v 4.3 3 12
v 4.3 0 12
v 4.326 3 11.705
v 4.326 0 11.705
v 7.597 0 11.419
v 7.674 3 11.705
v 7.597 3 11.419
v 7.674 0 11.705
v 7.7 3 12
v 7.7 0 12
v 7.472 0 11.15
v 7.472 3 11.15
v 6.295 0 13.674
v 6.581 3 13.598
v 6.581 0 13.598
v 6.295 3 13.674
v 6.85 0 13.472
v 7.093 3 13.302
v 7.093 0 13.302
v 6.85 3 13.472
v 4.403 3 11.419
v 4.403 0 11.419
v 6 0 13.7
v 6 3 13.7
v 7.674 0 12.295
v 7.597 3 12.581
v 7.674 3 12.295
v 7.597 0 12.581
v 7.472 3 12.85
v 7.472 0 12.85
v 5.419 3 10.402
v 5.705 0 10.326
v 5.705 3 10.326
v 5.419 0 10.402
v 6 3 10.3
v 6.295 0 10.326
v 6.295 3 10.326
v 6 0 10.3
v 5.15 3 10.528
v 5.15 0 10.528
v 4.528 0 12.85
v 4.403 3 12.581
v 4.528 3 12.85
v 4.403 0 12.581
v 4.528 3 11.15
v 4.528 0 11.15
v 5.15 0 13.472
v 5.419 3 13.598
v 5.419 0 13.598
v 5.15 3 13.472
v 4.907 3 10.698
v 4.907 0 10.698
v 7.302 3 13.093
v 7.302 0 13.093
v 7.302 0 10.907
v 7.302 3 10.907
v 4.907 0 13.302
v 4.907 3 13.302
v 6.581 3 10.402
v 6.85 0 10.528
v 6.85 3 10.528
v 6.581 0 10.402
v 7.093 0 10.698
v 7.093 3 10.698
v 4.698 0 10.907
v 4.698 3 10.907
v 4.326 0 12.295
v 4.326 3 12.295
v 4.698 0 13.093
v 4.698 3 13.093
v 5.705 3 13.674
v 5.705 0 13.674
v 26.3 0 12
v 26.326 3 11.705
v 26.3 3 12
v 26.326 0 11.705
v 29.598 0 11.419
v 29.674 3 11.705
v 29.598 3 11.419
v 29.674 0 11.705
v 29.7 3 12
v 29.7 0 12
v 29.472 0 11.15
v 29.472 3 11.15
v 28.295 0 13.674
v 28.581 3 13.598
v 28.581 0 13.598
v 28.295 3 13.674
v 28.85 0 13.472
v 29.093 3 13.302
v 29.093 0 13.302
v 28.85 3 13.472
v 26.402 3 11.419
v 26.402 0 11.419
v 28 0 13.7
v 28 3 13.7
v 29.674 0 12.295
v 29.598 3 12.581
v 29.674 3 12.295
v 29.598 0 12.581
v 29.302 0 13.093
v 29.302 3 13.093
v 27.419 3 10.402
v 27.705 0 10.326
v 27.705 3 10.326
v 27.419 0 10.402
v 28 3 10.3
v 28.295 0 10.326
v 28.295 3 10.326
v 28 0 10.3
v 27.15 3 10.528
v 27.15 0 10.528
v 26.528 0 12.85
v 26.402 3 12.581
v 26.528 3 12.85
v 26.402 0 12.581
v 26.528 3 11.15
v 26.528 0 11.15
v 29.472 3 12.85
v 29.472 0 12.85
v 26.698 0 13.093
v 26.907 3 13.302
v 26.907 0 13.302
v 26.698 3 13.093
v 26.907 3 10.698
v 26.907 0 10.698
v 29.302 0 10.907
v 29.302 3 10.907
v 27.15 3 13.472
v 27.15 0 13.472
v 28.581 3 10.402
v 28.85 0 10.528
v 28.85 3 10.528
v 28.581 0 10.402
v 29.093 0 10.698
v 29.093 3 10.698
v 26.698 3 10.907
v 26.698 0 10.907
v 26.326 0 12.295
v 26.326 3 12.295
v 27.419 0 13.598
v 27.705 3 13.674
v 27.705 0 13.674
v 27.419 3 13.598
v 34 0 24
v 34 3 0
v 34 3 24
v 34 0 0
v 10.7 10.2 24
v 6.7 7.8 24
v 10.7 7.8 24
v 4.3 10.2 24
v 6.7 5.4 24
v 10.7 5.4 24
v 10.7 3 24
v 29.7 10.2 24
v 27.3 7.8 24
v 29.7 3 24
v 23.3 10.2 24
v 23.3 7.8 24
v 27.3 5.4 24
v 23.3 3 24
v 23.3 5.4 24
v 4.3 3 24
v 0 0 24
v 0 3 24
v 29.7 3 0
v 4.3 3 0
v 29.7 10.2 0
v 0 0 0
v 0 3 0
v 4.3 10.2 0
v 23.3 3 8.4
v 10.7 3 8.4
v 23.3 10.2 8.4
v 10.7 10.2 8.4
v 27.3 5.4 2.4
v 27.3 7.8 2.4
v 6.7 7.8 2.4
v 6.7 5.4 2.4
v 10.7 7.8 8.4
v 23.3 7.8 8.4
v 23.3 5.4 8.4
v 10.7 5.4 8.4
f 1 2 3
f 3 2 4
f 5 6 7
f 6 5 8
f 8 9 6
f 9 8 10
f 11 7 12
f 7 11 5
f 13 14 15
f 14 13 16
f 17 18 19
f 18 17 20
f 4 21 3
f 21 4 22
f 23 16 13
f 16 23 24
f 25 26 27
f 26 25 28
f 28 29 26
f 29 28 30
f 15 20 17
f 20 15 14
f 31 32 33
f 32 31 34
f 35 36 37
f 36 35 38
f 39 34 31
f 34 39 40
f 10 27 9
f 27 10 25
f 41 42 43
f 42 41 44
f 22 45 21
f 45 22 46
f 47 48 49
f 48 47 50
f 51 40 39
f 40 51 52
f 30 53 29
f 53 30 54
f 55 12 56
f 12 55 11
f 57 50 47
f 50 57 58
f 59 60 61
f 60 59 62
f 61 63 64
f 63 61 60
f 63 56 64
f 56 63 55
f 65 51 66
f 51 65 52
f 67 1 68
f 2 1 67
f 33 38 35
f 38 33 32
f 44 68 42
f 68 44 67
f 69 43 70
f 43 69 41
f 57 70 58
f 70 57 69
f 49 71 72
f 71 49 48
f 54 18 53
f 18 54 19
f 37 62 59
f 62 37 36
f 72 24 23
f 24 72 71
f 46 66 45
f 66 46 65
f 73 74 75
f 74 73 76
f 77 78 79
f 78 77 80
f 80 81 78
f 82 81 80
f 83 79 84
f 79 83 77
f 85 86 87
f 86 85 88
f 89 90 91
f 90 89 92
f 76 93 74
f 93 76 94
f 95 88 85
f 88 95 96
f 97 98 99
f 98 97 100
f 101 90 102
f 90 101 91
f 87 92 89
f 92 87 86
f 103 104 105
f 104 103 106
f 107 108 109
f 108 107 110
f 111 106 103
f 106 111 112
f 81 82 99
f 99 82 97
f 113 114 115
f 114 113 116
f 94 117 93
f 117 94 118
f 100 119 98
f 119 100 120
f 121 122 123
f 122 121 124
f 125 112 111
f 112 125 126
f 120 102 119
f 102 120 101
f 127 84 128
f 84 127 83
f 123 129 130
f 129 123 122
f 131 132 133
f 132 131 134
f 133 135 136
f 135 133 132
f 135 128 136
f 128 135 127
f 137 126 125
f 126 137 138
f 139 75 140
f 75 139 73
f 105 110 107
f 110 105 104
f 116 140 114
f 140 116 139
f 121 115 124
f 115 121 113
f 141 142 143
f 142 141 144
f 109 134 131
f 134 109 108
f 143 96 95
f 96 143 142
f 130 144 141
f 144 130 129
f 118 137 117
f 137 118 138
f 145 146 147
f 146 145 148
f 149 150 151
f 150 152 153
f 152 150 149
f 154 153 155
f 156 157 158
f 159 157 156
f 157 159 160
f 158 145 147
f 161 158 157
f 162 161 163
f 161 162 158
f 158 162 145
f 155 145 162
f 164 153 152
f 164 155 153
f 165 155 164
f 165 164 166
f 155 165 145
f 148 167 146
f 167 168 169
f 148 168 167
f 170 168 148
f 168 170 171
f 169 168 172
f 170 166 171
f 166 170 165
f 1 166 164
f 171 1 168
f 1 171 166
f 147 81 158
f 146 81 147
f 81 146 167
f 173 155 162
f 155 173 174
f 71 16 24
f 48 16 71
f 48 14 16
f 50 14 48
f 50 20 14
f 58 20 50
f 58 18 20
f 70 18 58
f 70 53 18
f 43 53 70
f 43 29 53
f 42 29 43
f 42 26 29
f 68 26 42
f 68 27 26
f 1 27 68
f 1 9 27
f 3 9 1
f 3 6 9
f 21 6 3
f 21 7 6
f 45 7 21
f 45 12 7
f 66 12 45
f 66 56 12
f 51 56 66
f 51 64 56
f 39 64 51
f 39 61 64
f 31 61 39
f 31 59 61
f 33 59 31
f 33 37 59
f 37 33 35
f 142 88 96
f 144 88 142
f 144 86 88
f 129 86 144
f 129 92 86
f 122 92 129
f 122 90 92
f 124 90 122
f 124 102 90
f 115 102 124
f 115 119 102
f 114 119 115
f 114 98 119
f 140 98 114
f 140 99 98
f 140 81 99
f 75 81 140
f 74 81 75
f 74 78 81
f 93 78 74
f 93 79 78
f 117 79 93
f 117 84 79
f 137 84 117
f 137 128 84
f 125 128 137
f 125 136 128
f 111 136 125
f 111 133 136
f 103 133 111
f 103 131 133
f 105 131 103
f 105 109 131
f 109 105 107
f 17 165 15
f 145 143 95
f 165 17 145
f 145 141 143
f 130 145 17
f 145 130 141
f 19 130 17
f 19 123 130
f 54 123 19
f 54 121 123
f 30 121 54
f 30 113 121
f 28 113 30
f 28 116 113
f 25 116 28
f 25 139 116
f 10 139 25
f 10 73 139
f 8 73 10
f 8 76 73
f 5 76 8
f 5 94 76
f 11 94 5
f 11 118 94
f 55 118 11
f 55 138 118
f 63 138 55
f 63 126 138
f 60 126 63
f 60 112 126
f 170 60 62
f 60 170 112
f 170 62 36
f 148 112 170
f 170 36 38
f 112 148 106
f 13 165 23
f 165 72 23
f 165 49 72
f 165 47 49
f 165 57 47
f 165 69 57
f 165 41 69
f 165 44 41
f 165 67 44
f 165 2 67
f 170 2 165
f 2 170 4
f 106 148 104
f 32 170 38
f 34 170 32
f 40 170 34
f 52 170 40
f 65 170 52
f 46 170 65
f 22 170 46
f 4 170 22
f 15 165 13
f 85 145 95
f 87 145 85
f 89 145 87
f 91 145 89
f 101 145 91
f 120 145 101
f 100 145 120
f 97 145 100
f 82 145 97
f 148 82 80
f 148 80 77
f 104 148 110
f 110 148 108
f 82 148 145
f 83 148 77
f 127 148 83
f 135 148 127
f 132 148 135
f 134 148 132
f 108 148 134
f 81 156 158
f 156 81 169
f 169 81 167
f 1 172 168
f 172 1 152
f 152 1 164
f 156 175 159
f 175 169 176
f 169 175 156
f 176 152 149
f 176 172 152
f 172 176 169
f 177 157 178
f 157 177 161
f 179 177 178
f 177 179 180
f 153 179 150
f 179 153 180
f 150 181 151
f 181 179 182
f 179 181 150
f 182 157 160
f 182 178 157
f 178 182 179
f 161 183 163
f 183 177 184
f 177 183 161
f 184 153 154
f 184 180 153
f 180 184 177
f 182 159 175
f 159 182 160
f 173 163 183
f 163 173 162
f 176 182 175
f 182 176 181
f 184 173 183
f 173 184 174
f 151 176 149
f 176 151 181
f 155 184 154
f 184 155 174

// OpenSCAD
/*
  Suporte paramétrico para sensor analógico de água.
  DrenaHub — Global Solution Maker Lab
  Ajuste as medidas ao sensor realmente comprado.
*/

sensor_width = 20.0;
sensor_thickness = 1.8;
sensor_length = 62.0;
wall = 2.4;
clearance = 0.6;
holder_height = 24.0;
mount_width = 34.0;
mount_height = 24.0;
mount_thickness = 3.0;
hole_diameter = 3.4;
hole_spacing = 22.0;

module sensor_clip() {
    difference() {
        cube([
            sensor_width + 2 * wall + clearance,
            sensor_thickness + 2 * wall + clearance,
            holder_height
        ]);
        translate([wall, wall, wall])
            cube([
                sensor_width + clearance,
                sensor_thickness + clearance,
                holder_height
            ]);
        translate([
            wall + 4,
            -1,
            wall + 6
        ])
            cube([
                sensor_width - 8 + clearance,
                sensor_thickness + 2 * wall + clearance + 2,
                holder_height
            ]);
    }
}

module mounting_plate() {
    difference() {
        cube([mount_width, mount_thickness, mount_height]);
        for (x = [
            mount_width / 2 - hole_spacing / 2,
            mount_width / 2 + hole_spacing / 2
        ]) {
            translate([x, -1, mount_height / 2])
                rotate([-90, 0, 0])
                    cylinder(h = mount_thickness + 2, d = hole_diameter, $fn = 36);
        }
    }
}

union() {
    mounting_plate();
    translate([
        (mount_width - sensor_width - 2 * wall - clearance) / 2,
        mount_thickness,
        0
    ])
        sensor_clip();
}
